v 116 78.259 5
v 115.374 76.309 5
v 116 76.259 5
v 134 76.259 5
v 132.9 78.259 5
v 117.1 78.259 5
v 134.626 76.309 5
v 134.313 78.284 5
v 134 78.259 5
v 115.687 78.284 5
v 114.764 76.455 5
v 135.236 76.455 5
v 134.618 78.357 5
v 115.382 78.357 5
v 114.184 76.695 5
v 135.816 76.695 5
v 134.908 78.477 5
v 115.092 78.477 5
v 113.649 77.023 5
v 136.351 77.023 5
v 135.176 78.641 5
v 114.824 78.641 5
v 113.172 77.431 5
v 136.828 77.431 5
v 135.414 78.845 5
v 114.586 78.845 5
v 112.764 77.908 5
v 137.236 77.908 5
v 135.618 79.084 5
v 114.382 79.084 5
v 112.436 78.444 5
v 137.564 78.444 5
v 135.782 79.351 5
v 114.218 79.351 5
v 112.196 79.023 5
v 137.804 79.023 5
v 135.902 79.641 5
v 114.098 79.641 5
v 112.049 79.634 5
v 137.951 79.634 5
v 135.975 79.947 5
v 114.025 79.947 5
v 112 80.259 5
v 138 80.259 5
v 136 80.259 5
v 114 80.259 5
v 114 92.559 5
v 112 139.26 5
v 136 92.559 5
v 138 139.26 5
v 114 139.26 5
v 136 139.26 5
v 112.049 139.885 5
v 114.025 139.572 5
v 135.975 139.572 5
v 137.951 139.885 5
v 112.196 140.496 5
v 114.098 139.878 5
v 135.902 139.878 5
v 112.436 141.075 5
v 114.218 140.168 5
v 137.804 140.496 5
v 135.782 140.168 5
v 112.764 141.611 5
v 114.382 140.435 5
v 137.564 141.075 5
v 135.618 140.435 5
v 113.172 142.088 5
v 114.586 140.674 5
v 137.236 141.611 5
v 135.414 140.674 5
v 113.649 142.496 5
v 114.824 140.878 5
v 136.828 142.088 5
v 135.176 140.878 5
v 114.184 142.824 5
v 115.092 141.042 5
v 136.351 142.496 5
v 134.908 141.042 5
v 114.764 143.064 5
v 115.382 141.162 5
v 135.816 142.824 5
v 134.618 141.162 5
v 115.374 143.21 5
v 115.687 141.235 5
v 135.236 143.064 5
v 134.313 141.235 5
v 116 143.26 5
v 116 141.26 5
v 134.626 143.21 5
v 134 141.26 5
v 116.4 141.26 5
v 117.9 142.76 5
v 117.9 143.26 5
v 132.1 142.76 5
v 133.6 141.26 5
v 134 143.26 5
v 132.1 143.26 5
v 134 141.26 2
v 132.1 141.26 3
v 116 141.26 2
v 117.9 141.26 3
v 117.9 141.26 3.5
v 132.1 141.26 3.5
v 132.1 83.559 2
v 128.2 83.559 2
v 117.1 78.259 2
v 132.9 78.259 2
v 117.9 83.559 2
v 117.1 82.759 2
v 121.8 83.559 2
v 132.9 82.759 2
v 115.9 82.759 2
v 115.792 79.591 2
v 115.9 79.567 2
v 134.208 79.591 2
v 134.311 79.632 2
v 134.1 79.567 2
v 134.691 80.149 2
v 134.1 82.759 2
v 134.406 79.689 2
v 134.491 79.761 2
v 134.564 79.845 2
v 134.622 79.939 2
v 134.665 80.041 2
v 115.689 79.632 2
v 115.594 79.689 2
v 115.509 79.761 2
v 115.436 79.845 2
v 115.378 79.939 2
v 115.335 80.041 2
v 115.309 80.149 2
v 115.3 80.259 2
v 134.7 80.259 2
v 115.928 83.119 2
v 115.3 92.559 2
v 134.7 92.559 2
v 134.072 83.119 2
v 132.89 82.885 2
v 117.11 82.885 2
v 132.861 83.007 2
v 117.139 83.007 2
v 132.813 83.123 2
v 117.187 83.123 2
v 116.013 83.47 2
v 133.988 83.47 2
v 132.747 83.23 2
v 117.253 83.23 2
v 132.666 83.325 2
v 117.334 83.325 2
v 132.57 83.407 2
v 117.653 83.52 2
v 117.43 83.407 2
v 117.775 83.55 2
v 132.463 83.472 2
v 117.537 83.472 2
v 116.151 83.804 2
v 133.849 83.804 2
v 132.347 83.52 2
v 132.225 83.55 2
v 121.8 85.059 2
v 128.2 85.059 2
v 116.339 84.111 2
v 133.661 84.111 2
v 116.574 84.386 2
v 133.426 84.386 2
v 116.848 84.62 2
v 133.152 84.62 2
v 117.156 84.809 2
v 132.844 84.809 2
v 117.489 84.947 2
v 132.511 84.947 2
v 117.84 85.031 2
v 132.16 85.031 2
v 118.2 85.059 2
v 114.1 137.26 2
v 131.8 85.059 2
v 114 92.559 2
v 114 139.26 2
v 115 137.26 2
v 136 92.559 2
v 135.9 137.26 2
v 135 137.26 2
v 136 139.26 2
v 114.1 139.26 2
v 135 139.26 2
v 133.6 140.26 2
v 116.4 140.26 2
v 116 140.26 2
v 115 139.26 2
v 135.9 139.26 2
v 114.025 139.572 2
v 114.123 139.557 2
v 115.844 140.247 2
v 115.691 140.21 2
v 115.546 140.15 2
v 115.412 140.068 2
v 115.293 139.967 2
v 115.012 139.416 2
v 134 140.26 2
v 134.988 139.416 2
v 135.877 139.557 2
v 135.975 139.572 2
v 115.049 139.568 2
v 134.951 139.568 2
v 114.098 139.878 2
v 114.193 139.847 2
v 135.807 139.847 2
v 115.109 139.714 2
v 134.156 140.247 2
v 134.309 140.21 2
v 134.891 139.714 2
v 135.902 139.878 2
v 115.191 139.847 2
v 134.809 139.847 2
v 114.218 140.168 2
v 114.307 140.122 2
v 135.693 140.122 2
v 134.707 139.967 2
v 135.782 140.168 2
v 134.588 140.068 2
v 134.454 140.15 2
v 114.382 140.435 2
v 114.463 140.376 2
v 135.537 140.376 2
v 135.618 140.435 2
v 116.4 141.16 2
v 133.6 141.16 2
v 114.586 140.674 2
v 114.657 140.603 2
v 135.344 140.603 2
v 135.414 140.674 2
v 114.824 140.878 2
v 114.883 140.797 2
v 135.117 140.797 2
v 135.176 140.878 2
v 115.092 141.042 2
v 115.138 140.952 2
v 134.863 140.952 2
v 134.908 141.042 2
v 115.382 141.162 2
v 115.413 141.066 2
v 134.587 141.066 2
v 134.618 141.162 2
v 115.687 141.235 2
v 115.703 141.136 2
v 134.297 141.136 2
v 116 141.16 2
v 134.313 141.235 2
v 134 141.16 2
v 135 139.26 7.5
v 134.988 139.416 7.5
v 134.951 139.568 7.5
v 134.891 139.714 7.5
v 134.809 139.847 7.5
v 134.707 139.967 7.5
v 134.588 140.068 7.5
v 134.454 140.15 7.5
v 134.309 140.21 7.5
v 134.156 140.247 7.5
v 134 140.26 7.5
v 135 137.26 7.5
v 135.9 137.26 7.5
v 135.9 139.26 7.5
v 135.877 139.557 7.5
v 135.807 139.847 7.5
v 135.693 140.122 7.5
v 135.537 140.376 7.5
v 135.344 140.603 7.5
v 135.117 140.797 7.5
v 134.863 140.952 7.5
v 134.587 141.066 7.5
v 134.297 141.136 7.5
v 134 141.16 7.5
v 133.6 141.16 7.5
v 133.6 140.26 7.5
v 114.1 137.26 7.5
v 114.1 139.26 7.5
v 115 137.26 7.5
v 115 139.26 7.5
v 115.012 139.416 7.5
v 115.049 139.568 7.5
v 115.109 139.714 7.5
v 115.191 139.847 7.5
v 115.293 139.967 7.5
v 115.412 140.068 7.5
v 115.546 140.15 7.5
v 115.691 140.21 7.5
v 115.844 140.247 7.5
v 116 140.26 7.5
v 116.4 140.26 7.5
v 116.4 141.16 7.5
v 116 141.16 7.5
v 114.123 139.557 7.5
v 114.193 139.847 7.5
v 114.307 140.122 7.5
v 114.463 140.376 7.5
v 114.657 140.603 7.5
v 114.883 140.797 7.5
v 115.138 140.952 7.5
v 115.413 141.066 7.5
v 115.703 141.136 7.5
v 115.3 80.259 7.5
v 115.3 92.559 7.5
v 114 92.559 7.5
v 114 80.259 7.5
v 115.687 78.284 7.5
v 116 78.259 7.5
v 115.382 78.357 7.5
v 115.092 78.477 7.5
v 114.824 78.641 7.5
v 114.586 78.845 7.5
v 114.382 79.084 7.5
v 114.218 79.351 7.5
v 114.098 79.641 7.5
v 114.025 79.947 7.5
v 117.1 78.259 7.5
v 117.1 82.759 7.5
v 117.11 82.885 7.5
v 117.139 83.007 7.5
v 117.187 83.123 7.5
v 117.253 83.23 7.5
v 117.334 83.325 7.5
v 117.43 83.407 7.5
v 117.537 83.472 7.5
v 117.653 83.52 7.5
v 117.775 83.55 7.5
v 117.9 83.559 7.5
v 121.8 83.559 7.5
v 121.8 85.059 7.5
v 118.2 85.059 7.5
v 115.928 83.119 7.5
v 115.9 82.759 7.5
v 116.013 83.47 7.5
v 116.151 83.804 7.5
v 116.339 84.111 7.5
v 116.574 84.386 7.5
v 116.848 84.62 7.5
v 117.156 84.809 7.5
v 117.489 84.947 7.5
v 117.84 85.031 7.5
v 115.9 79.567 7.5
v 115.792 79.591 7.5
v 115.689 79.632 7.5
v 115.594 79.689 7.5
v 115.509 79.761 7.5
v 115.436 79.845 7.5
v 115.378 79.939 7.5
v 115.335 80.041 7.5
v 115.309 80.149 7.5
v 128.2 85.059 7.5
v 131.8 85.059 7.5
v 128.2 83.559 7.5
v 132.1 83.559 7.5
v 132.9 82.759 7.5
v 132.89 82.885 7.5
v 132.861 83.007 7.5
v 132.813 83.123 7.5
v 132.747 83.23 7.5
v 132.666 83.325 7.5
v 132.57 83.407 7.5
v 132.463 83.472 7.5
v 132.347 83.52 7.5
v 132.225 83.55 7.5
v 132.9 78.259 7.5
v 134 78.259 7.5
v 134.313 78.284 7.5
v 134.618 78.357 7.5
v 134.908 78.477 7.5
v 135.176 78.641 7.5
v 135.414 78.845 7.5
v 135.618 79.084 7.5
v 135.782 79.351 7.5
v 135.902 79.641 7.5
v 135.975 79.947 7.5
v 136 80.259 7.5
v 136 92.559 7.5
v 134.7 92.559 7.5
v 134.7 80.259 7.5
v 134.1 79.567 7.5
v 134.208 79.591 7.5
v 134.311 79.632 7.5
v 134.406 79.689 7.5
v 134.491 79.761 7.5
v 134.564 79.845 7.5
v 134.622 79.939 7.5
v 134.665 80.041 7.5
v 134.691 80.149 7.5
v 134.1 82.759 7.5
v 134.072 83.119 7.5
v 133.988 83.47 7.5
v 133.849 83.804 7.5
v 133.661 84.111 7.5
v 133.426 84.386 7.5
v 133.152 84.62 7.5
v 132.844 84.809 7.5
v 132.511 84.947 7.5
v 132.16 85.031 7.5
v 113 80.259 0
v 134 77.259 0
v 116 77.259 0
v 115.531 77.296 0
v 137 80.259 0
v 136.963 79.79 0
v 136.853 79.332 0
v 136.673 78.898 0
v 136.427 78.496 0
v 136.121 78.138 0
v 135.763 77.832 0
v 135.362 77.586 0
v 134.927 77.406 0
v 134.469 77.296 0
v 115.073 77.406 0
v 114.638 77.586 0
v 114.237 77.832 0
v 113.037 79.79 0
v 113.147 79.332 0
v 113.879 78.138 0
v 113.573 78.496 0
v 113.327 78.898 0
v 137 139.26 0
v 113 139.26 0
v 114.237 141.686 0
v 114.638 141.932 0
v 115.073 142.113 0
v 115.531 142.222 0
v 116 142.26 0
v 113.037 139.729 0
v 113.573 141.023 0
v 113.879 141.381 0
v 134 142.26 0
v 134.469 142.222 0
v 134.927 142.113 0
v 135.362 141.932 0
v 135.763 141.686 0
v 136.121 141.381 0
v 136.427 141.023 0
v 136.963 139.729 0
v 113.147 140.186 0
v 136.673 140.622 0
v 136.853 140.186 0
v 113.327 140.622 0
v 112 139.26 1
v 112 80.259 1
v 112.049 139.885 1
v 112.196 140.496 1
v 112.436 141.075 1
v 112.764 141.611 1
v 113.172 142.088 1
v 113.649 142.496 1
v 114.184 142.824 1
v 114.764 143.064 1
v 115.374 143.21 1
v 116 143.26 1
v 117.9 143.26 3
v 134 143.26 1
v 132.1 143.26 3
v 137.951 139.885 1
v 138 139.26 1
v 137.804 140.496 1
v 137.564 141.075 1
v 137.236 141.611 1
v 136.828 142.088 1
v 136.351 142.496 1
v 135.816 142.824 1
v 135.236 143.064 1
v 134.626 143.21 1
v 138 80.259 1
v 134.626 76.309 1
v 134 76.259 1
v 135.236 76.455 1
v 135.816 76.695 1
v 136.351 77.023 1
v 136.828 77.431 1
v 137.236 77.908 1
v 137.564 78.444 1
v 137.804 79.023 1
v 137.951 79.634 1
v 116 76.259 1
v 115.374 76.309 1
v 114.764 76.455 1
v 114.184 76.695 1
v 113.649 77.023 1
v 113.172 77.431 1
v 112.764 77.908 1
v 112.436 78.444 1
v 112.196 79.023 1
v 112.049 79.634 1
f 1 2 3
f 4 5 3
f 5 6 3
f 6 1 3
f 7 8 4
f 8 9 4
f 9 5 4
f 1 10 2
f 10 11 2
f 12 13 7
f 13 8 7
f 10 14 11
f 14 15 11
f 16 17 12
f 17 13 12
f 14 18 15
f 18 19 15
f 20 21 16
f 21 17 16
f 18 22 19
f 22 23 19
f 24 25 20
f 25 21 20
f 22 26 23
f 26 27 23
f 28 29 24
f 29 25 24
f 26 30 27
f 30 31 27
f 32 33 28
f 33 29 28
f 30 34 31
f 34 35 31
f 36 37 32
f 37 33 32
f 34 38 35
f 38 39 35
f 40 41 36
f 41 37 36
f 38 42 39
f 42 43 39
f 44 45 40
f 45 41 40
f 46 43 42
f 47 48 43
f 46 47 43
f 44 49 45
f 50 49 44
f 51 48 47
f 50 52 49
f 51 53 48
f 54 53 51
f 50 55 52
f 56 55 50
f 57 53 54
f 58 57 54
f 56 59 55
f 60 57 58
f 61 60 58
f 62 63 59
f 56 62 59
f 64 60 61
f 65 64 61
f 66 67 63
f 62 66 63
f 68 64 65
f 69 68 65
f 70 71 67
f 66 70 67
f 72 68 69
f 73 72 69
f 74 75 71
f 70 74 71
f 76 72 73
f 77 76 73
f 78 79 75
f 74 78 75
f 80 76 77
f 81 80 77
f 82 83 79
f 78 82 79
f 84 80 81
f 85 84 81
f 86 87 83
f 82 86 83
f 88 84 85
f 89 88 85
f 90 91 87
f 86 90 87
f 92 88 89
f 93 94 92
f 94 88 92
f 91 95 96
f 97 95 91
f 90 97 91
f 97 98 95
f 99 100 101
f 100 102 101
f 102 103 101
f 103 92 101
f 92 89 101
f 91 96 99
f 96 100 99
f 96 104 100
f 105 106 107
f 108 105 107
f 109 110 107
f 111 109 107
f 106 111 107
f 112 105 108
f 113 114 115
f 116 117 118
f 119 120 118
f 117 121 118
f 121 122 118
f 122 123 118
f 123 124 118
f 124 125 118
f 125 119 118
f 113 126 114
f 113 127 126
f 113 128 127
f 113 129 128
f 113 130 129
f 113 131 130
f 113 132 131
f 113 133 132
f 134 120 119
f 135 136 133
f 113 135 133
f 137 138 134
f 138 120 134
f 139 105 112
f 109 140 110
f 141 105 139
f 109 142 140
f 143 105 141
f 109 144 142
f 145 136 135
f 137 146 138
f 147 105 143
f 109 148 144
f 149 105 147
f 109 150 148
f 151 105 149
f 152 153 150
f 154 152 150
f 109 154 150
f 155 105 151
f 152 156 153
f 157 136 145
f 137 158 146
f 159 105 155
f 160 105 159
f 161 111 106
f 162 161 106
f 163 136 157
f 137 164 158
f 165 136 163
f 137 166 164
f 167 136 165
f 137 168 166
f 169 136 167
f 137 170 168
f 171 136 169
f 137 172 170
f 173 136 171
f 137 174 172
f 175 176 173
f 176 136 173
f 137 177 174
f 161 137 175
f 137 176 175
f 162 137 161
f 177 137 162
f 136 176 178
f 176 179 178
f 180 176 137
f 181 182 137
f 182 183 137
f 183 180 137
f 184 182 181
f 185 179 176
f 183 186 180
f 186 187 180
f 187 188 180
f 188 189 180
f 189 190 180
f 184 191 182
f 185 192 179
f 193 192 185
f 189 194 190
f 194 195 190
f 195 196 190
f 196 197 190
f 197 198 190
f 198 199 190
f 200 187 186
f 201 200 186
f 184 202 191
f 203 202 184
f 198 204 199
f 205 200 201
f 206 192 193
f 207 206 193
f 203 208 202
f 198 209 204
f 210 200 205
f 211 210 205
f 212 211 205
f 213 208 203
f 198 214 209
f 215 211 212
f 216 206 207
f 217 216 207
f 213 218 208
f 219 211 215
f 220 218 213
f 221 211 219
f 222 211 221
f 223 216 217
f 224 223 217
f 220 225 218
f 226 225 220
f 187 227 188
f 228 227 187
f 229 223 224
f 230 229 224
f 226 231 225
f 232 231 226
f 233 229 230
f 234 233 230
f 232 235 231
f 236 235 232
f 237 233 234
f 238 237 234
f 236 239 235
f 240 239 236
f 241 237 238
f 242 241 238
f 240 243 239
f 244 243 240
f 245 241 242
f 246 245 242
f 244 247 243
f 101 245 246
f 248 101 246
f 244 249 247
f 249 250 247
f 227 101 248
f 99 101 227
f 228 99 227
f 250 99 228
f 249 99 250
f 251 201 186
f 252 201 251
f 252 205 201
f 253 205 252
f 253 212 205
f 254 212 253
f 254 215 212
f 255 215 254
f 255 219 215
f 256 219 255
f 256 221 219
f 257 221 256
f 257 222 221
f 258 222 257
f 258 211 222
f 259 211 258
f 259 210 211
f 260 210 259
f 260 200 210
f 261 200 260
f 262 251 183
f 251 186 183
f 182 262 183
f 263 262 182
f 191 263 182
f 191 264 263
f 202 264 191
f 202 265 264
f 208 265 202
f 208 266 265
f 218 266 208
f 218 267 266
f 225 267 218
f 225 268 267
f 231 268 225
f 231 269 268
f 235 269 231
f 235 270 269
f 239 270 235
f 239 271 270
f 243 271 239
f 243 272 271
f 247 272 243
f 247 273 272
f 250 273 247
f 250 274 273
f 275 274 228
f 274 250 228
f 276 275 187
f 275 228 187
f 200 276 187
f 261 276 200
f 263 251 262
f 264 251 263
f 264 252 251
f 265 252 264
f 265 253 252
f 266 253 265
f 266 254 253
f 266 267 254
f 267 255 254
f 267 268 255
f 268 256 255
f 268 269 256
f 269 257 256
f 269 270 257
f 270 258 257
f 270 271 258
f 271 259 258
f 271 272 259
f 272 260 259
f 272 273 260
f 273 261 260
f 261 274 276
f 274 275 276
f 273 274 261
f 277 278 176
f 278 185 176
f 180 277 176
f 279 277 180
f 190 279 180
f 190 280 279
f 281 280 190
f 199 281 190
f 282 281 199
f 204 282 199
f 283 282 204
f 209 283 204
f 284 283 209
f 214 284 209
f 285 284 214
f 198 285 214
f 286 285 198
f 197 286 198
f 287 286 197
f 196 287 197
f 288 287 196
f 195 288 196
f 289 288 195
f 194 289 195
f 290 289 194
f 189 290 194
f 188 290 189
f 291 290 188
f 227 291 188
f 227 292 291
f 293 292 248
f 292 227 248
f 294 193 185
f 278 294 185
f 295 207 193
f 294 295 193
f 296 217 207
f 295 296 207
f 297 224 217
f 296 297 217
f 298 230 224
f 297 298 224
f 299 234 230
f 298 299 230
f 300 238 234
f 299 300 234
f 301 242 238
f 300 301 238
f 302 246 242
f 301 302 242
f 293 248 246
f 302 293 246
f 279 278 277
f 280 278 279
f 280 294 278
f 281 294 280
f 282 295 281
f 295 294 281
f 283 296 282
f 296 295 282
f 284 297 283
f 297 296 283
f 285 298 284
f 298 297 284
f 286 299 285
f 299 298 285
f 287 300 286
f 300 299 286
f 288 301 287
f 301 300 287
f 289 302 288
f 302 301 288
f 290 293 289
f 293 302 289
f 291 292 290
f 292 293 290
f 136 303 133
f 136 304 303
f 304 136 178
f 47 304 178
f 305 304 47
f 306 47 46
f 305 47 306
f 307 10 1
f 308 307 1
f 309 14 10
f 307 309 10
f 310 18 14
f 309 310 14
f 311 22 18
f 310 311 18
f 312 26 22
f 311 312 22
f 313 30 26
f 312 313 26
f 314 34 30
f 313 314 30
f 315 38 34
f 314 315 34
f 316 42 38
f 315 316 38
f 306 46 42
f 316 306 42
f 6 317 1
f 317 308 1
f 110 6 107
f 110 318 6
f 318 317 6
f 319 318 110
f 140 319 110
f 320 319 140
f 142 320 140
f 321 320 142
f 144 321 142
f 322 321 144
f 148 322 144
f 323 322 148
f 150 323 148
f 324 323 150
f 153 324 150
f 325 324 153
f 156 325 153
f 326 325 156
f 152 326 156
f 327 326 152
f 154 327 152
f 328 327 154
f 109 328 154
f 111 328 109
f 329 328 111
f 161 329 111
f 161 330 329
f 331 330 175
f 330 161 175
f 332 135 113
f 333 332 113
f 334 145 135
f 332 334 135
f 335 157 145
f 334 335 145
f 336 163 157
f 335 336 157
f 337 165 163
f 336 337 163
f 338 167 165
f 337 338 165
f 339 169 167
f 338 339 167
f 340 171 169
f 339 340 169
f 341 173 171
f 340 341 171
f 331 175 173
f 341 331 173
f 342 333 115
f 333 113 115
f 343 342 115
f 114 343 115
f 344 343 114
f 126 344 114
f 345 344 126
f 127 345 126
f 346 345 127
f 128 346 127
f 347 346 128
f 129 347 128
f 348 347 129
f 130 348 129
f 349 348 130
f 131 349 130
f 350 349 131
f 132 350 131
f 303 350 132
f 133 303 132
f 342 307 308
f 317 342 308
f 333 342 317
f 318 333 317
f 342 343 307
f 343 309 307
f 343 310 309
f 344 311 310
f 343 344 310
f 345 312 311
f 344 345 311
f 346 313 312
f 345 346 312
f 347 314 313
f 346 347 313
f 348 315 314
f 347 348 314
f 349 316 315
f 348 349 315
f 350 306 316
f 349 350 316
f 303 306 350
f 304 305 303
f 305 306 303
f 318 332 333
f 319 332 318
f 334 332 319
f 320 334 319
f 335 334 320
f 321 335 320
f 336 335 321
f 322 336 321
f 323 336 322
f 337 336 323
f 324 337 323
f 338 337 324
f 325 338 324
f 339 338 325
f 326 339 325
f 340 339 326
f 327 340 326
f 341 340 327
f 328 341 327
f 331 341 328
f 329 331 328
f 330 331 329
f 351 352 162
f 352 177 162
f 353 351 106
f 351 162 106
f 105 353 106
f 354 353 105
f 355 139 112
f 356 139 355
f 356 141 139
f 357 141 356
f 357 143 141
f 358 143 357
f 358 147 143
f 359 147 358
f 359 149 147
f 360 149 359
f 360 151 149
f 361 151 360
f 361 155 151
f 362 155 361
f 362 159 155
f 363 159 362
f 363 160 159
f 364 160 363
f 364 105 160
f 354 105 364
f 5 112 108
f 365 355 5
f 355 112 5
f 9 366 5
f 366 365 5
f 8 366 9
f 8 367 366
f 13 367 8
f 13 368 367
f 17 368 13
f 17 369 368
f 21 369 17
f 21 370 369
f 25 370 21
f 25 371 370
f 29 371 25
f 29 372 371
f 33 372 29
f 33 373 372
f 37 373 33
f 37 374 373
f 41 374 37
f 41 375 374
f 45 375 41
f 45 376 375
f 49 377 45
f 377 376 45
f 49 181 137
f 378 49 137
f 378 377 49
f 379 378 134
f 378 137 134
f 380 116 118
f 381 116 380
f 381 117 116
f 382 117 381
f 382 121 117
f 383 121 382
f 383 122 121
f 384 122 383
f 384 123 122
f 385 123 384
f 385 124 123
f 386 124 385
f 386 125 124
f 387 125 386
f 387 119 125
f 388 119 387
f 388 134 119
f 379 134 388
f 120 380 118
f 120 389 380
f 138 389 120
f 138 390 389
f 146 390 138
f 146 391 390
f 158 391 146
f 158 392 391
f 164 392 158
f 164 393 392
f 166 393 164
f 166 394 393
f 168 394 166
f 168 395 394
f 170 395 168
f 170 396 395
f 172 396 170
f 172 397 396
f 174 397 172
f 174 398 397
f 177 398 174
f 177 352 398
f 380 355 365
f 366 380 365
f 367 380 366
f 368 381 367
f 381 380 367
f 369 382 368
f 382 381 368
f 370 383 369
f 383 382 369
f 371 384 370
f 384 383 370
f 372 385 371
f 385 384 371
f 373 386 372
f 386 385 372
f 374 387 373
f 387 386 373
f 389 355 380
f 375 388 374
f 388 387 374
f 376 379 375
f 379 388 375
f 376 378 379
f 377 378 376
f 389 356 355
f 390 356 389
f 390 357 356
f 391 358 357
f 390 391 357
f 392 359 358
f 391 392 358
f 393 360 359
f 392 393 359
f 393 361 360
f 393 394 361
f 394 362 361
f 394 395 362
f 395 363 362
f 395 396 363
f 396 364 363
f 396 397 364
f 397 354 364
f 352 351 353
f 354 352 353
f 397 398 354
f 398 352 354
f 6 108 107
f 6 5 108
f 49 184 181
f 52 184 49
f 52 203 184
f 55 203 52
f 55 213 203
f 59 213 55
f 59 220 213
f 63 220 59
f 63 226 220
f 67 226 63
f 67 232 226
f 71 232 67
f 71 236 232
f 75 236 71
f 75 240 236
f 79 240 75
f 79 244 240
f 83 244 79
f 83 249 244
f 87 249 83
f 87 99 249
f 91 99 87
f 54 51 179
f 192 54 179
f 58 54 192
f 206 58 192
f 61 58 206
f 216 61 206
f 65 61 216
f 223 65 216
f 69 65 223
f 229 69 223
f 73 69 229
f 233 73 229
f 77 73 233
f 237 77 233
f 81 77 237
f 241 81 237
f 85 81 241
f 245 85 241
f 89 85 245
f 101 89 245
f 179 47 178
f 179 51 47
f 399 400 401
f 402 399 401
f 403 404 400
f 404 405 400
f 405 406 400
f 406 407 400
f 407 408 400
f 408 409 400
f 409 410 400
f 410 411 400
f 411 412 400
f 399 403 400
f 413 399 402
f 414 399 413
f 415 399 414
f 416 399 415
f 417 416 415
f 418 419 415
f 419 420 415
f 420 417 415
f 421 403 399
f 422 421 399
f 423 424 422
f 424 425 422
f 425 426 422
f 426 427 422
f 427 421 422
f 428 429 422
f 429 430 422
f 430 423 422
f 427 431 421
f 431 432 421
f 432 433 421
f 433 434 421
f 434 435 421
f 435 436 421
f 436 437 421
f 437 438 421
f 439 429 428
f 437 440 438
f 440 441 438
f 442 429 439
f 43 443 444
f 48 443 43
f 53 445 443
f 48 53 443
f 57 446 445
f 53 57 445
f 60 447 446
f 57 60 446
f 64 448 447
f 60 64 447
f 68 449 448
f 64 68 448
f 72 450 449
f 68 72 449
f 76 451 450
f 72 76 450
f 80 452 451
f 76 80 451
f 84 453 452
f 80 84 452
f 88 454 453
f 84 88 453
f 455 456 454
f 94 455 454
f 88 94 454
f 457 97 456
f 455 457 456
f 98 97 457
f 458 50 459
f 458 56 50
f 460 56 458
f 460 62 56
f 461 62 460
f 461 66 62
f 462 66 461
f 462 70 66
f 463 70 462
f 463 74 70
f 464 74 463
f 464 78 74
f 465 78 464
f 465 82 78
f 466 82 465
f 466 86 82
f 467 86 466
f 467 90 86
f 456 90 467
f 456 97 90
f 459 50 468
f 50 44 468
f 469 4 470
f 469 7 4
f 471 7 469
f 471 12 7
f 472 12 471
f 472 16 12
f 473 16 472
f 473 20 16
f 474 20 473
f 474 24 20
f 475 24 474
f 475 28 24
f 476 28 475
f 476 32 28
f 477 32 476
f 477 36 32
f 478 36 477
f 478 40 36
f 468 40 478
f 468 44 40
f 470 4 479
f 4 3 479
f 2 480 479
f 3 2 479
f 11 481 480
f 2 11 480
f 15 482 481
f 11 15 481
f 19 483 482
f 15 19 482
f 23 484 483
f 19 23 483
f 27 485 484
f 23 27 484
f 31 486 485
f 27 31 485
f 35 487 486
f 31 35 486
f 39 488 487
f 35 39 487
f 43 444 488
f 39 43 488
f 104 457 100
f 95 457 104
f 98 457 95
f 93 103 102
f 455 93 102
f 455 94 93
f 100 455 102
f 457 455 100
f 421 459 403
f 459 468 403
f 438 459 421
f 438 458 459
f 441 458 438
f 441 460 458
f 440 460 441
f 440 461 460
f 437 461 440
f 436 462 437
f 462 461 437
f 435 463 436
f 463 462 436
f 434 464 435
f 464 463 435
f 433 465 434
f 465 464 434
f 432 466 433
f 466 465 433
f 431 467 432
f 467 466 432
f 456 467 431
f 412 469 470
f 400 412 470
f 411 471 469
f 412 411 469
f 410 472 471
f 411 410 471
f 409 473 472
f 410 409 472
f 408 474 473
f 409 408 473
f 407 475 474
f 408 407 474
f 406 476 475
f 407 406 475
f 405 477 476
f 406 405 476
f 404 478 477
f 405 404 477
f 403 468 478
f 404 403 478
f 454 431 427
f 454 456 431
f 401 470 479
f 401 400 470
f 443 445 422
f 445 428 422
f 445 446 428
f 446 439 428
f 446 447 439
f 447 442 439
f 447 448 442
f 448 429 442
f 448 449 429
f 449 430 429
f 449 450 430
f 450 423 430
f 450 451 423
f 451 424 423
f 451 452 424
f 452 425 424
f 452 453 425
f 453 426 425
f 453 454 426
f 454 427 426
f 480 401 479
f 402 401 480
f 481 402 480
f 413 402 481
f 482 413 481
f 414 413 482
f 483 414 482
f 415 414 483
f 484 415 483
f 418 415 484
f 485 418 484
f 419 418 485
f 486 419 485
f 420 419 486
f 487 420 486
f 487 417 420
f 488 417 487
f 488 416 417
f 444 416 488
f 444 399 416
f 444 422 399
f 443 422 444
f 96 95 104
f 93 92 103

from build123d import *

# Parameters (mm, degrees)
BOSS_EXTRUDE1_DEPTH = 2
BOSS_EXTRUDE2_DEPTH = 5.5
BOSS_EXTRUDE3_DEPTH = 3
SKETCH5_W           = 14.2
SKETCH5_H           = 2
CUT_EXTRUDE1_DEPTH  = 3
CHAMFER1_SIZE       = 1
CHAMFER2_START      = 154
CHAMFER2_DEPTH      = 1.803469575
CHAMFER3_START      = -11.465845015
CHAMFER3_DEPTH      = 10.161362536


with BuildPart() as part:
    # Sketch1 → Boss-Extrude1 (new body)
    with BuildSketch(Plane.XY):
        with BuildLine():
            Line((116.000053406, 143.259475708), (134.000045776, 143.259475708))
            ThreePointArc((134.000045776, 143.259475708), (136.828472901, 142.087902833), (138.000045776, 139.259475708))
            Line((138.000045776, 139.259475708), (138.000045776, 80.259468079))
            ThreePointArc((138.000045776, 80.259468079), (136.828472901, 77.431040954), (134.000045776, 76.259468079))
            Line((134.000045776, 76.259468079), (116.000053406, 76.259468079))
            ThreePointArc((116.000053406, 76.259468079), (113.171626281, 77.431040954), (112.000053406, 80.259468079))
            Line((112.000053406, 80.259468079), (112.000053406, 139.259475708))
            ThreePointArc((112.000053406, 139.259475708), (113.171626281, 142.087902833), (116.000053406, 143.259475708))
        make_face()
    extrude(amount=BOSS_EXTRUDE1_DEPTH)

    # Sketch2 → Boss-Extrude2 (add)
    with BuildSketch(Plane.XY.offset(2)):
        with BuildLine():
            Line((133.600045776, 140.259475708), (134.000045776, 140.259475708))
            ThreePointArc((134.000045776, 140.259475708), (134.707152558, 139.966582489), (135.000045776, 139.259475708))
            Line((135.000045776, 139.259475708), (135.000045776, 137.259475708))
            Line((135.000045776, 137.259475708), (135.900054932, 137.259475708))
            Line((135.900054932, 137.259475708), (135.900054932, 139.259475708))
            ThreePointArc((135.900054932, 139.259475708), (135.343555134, 140.602985066), (134.000045776, 141.159484863))
            Line((134.000045776, 141.159484863), (133.600045776, 141.159484863))
            Line((133.600045776, 141.159484863), (133.600045776, 140.259475708))
        make_face()
        with BuildLine():
            Line((114.10005188, 137.259475708), (115.000053406, 137.259475708))
            Line((115.000053406, 137.259475708), (115.000053406, 139.259475708))
            ThreePointArc((115.000053406, 139.259475708), (115.292946625, 139.966582489), (116.000053406, 140.259475708))
            Line((116.000053406, 140.259475708), (116.400053406, 140.259475708))
            Line((116.400053406, 140.259475708), (116.400053406, 141.159469604))
            Line((116.400053406, 141.159469604), (116.000053406, 141.159469604))
            ThreePointArc((116.000053406, 141.159469604), (114.656549443, 140.602972042), (114.10005188, 139.259468079))
            Line((114.10005188, 139.259468079), (114.10005188, 137.259475708))
        make_face()
        with BuildLine():
            Line((115.300053406, 92.559468079), (114.000048828, 92.559468079))
            Line((114.000048828, 92.559468079), (114.000048828, 80.259475708))
            ThreePointArc((114.000048828, 80.259475708), (114.585836607, 78.845258909), (116.000053406, 78.25947113))
            Line((116.000053406, 78.25947113), (117.100048828, 78.25947113))
            Line((117.100048828, 78.25947113), (117.100048828, 82.759475708))
            ThreePointArc((117.100048828, 82.759475708), (117.334362956, 83.325160054), (117.900047302, 83.559474182))
            Line((117.900047302, 83.559474182), (121.800053406, 83.559474182))
            Line((121.800053406, 83.559474182), (121.800053406, 85.059468079))
            Line((121.800053406, 85.059468079), (118.200050354, 85.059468079))
            ThreePointArc((118.200050354, 85.059468079), (116.573704757, 84.385813675), (115.900050354, 82.759468079))
            Line((115.900050354, 82.759468079), (115.900050354, 79.566648196))
            ThreePointArc((115.900050354, 79.566648196), (115.470902134, 79.801211675), (115.300053406, 80.259468079))
            Line((115.300053406, 80.259468079), (115.300053406, 92.559468079))
        make_face()
        with BuildLine():
            Line((128.200045776, 85.059468079), (128.200045776, 83.559458923))
            Line((128.200045776, 83.559458923), (132.10005188, 83.559458923))
            ThreePointArc((132.10005188, 83.559458923), (132.665730831, 83.32514703), (132.900042725, 82.759468079))
            Line((132.900042725, 82.759468079), (132.900042725, 78.25947113))
            Line((132.900042725, 78.25947113), (134.000045776, 78.25947113))
            ThreePointArc((134.000045776, 78.25947113), (135.414257181, 78.845256674), (136.000042725, 80.259468079))
            Line((136.000042725, 80.259468079), (136.000042725, 92.559468079))
            Line((136.000042725, 92.559468079), (134.700045776, 92.559468079))
            Line((134.700045776, 92.559468079), (134.700045776, 80.259468079))
            ThreePointArc((134.700045776, 80.259468079), (134.529197048, 79.801211675), (134.100048828, 79.566648196))
            Line((134.100048828, 79.566648196), (134.100048828, 82.759468079))
            ThreePointArc((134.100048828, 82.759468079), (133.426394425, 84.385813675), (131.800048828, 85.059468079))
            Line((131.800048828, 85.059468079), (128.200045776, 85.059468079))
        make_face()
    extrude(amount=BOSS_EXTRUDE2_DEPTH)


with BuildPart() as boss_extrude3_tool:
    # Sketch3 → Boss-Extrude3 (new body)
    with BuildSketch(Plane.XY.offset(2)):
        with BuildLine():
            Line((116.000053406, 76.259468079), (134.000045776, 76.259468079))
            ThreePointArc((134.000045776, 76.259468079), (136.828472901, 77.431040954), (138.000045776, 80.259468079))
            Line((138.000045776, 80.259468079), (138.000045776, 139.259475708))
            ThreePointArc((138.000045776, 139.259475708), (136.828472901, 142.087902833), (134.000045776, 143.259475708))
            Line((134.000045776, 143.259475708), (116.000053406, 143.259475708))
            ThreePointArc((116.000053406, 143.259475708), (113.171626281, 142.087902833), (112.000053406, 139.259475708))
            Line((112.000053406, 139.259475708), (112.000053406, 80.259468079))
            ThreePointArc((112.000053406, 80.259468079), (113.171626281, 77.431040954), (116.000053406, 76.259468079))
        make_face()
        with BuildLine():
            Line((116.000053406, 78.259468079), (134.000045776, 78.259468079))
            ThreePointArc((134.000045776, 78.259468079), (135.414259339, 78.845254516), (136.000045776, 80.259468079))
            Line((136.000045776, 80.259468079), (136.000045776, 139.259475708))
            ThreePointArc((136.000045776, 139.259475708), (135.414259339, 140.67368927), (134.000045776, 141.259475708))
            Line((134.000045776, 141.259475708), (116.000053406, 141.259475708))
            ThreePointArc((116.000053406, 141.259475708), (114.585839843, 140.67368927), (114.000053406, 139.259475708))
            Line((114.000053406, 139.259475708), (114.000053406, 80.259468079))
            ThreePointArc((114.000053406, 80.259468079), (114.585839843, 78.845254516), (116.000053406, 78.259468079))
        make_face(mode=Mode.SUBTRACT)
    extrude(amount=BOSS_EXTRUDE3_DEPTH)


with BuildPart() as part_1:
    add(part.part)


with BuildPart() as part_2:
    # Boss-Extrude3: joined with boss_extrude3_tool
    add(part_1.part.fuse(boss_extrude3_tool.part, tol=0.00001))

    # Sketch5 → Cut-Extrude1 (cut)
    with BuildSketch(Plane(origin=(0, 143.259475708, 0), x_dir=(1, 0, 0), z_dir=(0, 1, 0))):
        with Locations((125.000049591, -4)):
            Rectangle(SKETCH5_W, SKETCH5_H)
    extrude(amount=-CUT_EXTRUDE1_DEPTH, mode=Mode.SUBTRACT)

    # Chamfer1
    chamfer1_edges = [part_2.edges().sort_by_distance(p)[0] for p in [
        (138.000045776, 109.759471893, 0),
        (136.828472901, 77.431040954, 0),
        (125.000049591, 76.259468079, 0),
        (113.171626281, 77.431040954, 0),
        (112.000053406, 109.759471893, 0),
        (113.171626281, 142.087902833, 0),
        (125.000049591, 143.259475708, 0),
        (136.828472901, 142.087902833, 0),
    ]]
    chamfer(chamfer1_edges, length=CHAMFER1_SIZE)

    # Chamfer2: read off the stored shape, not the designer's step
    # Chamfer2 outline → Chamfer2 (cut)
    with BuildSketch(Plane(origin=(0, 0, 0), x_dir=(0.8164965809277274, -0.4082482904638596, 0.4082482904638638), z_dir=(0.5773502691896238, 0.5773502691896238, -0.5773502691896297)).offset(CHAMFER2_START)):
        Polygon((51.619168378, -104.481727258), (53.456285686, -103.421067086), (51.619168378, -102.360406914), align=None)
    extrude(amount=CHAMFER2_DEPTH, mode=Mode.SUBTRACT)

    # Chamfer3: read off the stored shape, not the designer's step
    # Chamfer3 outline → Chamfer3 (cut)
    with BuildSketch(Plane(origin=(0, 0, 0), x_dir=(0.8164965809277249, 0.4082482904638619, -0.4082482904638661), z_dir=(0.5773502691896272, -0.5773502691896221, 0.5773502691896281)).offset(CHAMFER3_START)):
        Polygon((152.505057835, 104.481727258), (150.667940528, 103.421067086), (152.505057835, 102.360406914), align=None)
    extrude(amount=CHAMFER3_DEPTH, mode=Mode.SUBTRACT)


solid = part_2.part
